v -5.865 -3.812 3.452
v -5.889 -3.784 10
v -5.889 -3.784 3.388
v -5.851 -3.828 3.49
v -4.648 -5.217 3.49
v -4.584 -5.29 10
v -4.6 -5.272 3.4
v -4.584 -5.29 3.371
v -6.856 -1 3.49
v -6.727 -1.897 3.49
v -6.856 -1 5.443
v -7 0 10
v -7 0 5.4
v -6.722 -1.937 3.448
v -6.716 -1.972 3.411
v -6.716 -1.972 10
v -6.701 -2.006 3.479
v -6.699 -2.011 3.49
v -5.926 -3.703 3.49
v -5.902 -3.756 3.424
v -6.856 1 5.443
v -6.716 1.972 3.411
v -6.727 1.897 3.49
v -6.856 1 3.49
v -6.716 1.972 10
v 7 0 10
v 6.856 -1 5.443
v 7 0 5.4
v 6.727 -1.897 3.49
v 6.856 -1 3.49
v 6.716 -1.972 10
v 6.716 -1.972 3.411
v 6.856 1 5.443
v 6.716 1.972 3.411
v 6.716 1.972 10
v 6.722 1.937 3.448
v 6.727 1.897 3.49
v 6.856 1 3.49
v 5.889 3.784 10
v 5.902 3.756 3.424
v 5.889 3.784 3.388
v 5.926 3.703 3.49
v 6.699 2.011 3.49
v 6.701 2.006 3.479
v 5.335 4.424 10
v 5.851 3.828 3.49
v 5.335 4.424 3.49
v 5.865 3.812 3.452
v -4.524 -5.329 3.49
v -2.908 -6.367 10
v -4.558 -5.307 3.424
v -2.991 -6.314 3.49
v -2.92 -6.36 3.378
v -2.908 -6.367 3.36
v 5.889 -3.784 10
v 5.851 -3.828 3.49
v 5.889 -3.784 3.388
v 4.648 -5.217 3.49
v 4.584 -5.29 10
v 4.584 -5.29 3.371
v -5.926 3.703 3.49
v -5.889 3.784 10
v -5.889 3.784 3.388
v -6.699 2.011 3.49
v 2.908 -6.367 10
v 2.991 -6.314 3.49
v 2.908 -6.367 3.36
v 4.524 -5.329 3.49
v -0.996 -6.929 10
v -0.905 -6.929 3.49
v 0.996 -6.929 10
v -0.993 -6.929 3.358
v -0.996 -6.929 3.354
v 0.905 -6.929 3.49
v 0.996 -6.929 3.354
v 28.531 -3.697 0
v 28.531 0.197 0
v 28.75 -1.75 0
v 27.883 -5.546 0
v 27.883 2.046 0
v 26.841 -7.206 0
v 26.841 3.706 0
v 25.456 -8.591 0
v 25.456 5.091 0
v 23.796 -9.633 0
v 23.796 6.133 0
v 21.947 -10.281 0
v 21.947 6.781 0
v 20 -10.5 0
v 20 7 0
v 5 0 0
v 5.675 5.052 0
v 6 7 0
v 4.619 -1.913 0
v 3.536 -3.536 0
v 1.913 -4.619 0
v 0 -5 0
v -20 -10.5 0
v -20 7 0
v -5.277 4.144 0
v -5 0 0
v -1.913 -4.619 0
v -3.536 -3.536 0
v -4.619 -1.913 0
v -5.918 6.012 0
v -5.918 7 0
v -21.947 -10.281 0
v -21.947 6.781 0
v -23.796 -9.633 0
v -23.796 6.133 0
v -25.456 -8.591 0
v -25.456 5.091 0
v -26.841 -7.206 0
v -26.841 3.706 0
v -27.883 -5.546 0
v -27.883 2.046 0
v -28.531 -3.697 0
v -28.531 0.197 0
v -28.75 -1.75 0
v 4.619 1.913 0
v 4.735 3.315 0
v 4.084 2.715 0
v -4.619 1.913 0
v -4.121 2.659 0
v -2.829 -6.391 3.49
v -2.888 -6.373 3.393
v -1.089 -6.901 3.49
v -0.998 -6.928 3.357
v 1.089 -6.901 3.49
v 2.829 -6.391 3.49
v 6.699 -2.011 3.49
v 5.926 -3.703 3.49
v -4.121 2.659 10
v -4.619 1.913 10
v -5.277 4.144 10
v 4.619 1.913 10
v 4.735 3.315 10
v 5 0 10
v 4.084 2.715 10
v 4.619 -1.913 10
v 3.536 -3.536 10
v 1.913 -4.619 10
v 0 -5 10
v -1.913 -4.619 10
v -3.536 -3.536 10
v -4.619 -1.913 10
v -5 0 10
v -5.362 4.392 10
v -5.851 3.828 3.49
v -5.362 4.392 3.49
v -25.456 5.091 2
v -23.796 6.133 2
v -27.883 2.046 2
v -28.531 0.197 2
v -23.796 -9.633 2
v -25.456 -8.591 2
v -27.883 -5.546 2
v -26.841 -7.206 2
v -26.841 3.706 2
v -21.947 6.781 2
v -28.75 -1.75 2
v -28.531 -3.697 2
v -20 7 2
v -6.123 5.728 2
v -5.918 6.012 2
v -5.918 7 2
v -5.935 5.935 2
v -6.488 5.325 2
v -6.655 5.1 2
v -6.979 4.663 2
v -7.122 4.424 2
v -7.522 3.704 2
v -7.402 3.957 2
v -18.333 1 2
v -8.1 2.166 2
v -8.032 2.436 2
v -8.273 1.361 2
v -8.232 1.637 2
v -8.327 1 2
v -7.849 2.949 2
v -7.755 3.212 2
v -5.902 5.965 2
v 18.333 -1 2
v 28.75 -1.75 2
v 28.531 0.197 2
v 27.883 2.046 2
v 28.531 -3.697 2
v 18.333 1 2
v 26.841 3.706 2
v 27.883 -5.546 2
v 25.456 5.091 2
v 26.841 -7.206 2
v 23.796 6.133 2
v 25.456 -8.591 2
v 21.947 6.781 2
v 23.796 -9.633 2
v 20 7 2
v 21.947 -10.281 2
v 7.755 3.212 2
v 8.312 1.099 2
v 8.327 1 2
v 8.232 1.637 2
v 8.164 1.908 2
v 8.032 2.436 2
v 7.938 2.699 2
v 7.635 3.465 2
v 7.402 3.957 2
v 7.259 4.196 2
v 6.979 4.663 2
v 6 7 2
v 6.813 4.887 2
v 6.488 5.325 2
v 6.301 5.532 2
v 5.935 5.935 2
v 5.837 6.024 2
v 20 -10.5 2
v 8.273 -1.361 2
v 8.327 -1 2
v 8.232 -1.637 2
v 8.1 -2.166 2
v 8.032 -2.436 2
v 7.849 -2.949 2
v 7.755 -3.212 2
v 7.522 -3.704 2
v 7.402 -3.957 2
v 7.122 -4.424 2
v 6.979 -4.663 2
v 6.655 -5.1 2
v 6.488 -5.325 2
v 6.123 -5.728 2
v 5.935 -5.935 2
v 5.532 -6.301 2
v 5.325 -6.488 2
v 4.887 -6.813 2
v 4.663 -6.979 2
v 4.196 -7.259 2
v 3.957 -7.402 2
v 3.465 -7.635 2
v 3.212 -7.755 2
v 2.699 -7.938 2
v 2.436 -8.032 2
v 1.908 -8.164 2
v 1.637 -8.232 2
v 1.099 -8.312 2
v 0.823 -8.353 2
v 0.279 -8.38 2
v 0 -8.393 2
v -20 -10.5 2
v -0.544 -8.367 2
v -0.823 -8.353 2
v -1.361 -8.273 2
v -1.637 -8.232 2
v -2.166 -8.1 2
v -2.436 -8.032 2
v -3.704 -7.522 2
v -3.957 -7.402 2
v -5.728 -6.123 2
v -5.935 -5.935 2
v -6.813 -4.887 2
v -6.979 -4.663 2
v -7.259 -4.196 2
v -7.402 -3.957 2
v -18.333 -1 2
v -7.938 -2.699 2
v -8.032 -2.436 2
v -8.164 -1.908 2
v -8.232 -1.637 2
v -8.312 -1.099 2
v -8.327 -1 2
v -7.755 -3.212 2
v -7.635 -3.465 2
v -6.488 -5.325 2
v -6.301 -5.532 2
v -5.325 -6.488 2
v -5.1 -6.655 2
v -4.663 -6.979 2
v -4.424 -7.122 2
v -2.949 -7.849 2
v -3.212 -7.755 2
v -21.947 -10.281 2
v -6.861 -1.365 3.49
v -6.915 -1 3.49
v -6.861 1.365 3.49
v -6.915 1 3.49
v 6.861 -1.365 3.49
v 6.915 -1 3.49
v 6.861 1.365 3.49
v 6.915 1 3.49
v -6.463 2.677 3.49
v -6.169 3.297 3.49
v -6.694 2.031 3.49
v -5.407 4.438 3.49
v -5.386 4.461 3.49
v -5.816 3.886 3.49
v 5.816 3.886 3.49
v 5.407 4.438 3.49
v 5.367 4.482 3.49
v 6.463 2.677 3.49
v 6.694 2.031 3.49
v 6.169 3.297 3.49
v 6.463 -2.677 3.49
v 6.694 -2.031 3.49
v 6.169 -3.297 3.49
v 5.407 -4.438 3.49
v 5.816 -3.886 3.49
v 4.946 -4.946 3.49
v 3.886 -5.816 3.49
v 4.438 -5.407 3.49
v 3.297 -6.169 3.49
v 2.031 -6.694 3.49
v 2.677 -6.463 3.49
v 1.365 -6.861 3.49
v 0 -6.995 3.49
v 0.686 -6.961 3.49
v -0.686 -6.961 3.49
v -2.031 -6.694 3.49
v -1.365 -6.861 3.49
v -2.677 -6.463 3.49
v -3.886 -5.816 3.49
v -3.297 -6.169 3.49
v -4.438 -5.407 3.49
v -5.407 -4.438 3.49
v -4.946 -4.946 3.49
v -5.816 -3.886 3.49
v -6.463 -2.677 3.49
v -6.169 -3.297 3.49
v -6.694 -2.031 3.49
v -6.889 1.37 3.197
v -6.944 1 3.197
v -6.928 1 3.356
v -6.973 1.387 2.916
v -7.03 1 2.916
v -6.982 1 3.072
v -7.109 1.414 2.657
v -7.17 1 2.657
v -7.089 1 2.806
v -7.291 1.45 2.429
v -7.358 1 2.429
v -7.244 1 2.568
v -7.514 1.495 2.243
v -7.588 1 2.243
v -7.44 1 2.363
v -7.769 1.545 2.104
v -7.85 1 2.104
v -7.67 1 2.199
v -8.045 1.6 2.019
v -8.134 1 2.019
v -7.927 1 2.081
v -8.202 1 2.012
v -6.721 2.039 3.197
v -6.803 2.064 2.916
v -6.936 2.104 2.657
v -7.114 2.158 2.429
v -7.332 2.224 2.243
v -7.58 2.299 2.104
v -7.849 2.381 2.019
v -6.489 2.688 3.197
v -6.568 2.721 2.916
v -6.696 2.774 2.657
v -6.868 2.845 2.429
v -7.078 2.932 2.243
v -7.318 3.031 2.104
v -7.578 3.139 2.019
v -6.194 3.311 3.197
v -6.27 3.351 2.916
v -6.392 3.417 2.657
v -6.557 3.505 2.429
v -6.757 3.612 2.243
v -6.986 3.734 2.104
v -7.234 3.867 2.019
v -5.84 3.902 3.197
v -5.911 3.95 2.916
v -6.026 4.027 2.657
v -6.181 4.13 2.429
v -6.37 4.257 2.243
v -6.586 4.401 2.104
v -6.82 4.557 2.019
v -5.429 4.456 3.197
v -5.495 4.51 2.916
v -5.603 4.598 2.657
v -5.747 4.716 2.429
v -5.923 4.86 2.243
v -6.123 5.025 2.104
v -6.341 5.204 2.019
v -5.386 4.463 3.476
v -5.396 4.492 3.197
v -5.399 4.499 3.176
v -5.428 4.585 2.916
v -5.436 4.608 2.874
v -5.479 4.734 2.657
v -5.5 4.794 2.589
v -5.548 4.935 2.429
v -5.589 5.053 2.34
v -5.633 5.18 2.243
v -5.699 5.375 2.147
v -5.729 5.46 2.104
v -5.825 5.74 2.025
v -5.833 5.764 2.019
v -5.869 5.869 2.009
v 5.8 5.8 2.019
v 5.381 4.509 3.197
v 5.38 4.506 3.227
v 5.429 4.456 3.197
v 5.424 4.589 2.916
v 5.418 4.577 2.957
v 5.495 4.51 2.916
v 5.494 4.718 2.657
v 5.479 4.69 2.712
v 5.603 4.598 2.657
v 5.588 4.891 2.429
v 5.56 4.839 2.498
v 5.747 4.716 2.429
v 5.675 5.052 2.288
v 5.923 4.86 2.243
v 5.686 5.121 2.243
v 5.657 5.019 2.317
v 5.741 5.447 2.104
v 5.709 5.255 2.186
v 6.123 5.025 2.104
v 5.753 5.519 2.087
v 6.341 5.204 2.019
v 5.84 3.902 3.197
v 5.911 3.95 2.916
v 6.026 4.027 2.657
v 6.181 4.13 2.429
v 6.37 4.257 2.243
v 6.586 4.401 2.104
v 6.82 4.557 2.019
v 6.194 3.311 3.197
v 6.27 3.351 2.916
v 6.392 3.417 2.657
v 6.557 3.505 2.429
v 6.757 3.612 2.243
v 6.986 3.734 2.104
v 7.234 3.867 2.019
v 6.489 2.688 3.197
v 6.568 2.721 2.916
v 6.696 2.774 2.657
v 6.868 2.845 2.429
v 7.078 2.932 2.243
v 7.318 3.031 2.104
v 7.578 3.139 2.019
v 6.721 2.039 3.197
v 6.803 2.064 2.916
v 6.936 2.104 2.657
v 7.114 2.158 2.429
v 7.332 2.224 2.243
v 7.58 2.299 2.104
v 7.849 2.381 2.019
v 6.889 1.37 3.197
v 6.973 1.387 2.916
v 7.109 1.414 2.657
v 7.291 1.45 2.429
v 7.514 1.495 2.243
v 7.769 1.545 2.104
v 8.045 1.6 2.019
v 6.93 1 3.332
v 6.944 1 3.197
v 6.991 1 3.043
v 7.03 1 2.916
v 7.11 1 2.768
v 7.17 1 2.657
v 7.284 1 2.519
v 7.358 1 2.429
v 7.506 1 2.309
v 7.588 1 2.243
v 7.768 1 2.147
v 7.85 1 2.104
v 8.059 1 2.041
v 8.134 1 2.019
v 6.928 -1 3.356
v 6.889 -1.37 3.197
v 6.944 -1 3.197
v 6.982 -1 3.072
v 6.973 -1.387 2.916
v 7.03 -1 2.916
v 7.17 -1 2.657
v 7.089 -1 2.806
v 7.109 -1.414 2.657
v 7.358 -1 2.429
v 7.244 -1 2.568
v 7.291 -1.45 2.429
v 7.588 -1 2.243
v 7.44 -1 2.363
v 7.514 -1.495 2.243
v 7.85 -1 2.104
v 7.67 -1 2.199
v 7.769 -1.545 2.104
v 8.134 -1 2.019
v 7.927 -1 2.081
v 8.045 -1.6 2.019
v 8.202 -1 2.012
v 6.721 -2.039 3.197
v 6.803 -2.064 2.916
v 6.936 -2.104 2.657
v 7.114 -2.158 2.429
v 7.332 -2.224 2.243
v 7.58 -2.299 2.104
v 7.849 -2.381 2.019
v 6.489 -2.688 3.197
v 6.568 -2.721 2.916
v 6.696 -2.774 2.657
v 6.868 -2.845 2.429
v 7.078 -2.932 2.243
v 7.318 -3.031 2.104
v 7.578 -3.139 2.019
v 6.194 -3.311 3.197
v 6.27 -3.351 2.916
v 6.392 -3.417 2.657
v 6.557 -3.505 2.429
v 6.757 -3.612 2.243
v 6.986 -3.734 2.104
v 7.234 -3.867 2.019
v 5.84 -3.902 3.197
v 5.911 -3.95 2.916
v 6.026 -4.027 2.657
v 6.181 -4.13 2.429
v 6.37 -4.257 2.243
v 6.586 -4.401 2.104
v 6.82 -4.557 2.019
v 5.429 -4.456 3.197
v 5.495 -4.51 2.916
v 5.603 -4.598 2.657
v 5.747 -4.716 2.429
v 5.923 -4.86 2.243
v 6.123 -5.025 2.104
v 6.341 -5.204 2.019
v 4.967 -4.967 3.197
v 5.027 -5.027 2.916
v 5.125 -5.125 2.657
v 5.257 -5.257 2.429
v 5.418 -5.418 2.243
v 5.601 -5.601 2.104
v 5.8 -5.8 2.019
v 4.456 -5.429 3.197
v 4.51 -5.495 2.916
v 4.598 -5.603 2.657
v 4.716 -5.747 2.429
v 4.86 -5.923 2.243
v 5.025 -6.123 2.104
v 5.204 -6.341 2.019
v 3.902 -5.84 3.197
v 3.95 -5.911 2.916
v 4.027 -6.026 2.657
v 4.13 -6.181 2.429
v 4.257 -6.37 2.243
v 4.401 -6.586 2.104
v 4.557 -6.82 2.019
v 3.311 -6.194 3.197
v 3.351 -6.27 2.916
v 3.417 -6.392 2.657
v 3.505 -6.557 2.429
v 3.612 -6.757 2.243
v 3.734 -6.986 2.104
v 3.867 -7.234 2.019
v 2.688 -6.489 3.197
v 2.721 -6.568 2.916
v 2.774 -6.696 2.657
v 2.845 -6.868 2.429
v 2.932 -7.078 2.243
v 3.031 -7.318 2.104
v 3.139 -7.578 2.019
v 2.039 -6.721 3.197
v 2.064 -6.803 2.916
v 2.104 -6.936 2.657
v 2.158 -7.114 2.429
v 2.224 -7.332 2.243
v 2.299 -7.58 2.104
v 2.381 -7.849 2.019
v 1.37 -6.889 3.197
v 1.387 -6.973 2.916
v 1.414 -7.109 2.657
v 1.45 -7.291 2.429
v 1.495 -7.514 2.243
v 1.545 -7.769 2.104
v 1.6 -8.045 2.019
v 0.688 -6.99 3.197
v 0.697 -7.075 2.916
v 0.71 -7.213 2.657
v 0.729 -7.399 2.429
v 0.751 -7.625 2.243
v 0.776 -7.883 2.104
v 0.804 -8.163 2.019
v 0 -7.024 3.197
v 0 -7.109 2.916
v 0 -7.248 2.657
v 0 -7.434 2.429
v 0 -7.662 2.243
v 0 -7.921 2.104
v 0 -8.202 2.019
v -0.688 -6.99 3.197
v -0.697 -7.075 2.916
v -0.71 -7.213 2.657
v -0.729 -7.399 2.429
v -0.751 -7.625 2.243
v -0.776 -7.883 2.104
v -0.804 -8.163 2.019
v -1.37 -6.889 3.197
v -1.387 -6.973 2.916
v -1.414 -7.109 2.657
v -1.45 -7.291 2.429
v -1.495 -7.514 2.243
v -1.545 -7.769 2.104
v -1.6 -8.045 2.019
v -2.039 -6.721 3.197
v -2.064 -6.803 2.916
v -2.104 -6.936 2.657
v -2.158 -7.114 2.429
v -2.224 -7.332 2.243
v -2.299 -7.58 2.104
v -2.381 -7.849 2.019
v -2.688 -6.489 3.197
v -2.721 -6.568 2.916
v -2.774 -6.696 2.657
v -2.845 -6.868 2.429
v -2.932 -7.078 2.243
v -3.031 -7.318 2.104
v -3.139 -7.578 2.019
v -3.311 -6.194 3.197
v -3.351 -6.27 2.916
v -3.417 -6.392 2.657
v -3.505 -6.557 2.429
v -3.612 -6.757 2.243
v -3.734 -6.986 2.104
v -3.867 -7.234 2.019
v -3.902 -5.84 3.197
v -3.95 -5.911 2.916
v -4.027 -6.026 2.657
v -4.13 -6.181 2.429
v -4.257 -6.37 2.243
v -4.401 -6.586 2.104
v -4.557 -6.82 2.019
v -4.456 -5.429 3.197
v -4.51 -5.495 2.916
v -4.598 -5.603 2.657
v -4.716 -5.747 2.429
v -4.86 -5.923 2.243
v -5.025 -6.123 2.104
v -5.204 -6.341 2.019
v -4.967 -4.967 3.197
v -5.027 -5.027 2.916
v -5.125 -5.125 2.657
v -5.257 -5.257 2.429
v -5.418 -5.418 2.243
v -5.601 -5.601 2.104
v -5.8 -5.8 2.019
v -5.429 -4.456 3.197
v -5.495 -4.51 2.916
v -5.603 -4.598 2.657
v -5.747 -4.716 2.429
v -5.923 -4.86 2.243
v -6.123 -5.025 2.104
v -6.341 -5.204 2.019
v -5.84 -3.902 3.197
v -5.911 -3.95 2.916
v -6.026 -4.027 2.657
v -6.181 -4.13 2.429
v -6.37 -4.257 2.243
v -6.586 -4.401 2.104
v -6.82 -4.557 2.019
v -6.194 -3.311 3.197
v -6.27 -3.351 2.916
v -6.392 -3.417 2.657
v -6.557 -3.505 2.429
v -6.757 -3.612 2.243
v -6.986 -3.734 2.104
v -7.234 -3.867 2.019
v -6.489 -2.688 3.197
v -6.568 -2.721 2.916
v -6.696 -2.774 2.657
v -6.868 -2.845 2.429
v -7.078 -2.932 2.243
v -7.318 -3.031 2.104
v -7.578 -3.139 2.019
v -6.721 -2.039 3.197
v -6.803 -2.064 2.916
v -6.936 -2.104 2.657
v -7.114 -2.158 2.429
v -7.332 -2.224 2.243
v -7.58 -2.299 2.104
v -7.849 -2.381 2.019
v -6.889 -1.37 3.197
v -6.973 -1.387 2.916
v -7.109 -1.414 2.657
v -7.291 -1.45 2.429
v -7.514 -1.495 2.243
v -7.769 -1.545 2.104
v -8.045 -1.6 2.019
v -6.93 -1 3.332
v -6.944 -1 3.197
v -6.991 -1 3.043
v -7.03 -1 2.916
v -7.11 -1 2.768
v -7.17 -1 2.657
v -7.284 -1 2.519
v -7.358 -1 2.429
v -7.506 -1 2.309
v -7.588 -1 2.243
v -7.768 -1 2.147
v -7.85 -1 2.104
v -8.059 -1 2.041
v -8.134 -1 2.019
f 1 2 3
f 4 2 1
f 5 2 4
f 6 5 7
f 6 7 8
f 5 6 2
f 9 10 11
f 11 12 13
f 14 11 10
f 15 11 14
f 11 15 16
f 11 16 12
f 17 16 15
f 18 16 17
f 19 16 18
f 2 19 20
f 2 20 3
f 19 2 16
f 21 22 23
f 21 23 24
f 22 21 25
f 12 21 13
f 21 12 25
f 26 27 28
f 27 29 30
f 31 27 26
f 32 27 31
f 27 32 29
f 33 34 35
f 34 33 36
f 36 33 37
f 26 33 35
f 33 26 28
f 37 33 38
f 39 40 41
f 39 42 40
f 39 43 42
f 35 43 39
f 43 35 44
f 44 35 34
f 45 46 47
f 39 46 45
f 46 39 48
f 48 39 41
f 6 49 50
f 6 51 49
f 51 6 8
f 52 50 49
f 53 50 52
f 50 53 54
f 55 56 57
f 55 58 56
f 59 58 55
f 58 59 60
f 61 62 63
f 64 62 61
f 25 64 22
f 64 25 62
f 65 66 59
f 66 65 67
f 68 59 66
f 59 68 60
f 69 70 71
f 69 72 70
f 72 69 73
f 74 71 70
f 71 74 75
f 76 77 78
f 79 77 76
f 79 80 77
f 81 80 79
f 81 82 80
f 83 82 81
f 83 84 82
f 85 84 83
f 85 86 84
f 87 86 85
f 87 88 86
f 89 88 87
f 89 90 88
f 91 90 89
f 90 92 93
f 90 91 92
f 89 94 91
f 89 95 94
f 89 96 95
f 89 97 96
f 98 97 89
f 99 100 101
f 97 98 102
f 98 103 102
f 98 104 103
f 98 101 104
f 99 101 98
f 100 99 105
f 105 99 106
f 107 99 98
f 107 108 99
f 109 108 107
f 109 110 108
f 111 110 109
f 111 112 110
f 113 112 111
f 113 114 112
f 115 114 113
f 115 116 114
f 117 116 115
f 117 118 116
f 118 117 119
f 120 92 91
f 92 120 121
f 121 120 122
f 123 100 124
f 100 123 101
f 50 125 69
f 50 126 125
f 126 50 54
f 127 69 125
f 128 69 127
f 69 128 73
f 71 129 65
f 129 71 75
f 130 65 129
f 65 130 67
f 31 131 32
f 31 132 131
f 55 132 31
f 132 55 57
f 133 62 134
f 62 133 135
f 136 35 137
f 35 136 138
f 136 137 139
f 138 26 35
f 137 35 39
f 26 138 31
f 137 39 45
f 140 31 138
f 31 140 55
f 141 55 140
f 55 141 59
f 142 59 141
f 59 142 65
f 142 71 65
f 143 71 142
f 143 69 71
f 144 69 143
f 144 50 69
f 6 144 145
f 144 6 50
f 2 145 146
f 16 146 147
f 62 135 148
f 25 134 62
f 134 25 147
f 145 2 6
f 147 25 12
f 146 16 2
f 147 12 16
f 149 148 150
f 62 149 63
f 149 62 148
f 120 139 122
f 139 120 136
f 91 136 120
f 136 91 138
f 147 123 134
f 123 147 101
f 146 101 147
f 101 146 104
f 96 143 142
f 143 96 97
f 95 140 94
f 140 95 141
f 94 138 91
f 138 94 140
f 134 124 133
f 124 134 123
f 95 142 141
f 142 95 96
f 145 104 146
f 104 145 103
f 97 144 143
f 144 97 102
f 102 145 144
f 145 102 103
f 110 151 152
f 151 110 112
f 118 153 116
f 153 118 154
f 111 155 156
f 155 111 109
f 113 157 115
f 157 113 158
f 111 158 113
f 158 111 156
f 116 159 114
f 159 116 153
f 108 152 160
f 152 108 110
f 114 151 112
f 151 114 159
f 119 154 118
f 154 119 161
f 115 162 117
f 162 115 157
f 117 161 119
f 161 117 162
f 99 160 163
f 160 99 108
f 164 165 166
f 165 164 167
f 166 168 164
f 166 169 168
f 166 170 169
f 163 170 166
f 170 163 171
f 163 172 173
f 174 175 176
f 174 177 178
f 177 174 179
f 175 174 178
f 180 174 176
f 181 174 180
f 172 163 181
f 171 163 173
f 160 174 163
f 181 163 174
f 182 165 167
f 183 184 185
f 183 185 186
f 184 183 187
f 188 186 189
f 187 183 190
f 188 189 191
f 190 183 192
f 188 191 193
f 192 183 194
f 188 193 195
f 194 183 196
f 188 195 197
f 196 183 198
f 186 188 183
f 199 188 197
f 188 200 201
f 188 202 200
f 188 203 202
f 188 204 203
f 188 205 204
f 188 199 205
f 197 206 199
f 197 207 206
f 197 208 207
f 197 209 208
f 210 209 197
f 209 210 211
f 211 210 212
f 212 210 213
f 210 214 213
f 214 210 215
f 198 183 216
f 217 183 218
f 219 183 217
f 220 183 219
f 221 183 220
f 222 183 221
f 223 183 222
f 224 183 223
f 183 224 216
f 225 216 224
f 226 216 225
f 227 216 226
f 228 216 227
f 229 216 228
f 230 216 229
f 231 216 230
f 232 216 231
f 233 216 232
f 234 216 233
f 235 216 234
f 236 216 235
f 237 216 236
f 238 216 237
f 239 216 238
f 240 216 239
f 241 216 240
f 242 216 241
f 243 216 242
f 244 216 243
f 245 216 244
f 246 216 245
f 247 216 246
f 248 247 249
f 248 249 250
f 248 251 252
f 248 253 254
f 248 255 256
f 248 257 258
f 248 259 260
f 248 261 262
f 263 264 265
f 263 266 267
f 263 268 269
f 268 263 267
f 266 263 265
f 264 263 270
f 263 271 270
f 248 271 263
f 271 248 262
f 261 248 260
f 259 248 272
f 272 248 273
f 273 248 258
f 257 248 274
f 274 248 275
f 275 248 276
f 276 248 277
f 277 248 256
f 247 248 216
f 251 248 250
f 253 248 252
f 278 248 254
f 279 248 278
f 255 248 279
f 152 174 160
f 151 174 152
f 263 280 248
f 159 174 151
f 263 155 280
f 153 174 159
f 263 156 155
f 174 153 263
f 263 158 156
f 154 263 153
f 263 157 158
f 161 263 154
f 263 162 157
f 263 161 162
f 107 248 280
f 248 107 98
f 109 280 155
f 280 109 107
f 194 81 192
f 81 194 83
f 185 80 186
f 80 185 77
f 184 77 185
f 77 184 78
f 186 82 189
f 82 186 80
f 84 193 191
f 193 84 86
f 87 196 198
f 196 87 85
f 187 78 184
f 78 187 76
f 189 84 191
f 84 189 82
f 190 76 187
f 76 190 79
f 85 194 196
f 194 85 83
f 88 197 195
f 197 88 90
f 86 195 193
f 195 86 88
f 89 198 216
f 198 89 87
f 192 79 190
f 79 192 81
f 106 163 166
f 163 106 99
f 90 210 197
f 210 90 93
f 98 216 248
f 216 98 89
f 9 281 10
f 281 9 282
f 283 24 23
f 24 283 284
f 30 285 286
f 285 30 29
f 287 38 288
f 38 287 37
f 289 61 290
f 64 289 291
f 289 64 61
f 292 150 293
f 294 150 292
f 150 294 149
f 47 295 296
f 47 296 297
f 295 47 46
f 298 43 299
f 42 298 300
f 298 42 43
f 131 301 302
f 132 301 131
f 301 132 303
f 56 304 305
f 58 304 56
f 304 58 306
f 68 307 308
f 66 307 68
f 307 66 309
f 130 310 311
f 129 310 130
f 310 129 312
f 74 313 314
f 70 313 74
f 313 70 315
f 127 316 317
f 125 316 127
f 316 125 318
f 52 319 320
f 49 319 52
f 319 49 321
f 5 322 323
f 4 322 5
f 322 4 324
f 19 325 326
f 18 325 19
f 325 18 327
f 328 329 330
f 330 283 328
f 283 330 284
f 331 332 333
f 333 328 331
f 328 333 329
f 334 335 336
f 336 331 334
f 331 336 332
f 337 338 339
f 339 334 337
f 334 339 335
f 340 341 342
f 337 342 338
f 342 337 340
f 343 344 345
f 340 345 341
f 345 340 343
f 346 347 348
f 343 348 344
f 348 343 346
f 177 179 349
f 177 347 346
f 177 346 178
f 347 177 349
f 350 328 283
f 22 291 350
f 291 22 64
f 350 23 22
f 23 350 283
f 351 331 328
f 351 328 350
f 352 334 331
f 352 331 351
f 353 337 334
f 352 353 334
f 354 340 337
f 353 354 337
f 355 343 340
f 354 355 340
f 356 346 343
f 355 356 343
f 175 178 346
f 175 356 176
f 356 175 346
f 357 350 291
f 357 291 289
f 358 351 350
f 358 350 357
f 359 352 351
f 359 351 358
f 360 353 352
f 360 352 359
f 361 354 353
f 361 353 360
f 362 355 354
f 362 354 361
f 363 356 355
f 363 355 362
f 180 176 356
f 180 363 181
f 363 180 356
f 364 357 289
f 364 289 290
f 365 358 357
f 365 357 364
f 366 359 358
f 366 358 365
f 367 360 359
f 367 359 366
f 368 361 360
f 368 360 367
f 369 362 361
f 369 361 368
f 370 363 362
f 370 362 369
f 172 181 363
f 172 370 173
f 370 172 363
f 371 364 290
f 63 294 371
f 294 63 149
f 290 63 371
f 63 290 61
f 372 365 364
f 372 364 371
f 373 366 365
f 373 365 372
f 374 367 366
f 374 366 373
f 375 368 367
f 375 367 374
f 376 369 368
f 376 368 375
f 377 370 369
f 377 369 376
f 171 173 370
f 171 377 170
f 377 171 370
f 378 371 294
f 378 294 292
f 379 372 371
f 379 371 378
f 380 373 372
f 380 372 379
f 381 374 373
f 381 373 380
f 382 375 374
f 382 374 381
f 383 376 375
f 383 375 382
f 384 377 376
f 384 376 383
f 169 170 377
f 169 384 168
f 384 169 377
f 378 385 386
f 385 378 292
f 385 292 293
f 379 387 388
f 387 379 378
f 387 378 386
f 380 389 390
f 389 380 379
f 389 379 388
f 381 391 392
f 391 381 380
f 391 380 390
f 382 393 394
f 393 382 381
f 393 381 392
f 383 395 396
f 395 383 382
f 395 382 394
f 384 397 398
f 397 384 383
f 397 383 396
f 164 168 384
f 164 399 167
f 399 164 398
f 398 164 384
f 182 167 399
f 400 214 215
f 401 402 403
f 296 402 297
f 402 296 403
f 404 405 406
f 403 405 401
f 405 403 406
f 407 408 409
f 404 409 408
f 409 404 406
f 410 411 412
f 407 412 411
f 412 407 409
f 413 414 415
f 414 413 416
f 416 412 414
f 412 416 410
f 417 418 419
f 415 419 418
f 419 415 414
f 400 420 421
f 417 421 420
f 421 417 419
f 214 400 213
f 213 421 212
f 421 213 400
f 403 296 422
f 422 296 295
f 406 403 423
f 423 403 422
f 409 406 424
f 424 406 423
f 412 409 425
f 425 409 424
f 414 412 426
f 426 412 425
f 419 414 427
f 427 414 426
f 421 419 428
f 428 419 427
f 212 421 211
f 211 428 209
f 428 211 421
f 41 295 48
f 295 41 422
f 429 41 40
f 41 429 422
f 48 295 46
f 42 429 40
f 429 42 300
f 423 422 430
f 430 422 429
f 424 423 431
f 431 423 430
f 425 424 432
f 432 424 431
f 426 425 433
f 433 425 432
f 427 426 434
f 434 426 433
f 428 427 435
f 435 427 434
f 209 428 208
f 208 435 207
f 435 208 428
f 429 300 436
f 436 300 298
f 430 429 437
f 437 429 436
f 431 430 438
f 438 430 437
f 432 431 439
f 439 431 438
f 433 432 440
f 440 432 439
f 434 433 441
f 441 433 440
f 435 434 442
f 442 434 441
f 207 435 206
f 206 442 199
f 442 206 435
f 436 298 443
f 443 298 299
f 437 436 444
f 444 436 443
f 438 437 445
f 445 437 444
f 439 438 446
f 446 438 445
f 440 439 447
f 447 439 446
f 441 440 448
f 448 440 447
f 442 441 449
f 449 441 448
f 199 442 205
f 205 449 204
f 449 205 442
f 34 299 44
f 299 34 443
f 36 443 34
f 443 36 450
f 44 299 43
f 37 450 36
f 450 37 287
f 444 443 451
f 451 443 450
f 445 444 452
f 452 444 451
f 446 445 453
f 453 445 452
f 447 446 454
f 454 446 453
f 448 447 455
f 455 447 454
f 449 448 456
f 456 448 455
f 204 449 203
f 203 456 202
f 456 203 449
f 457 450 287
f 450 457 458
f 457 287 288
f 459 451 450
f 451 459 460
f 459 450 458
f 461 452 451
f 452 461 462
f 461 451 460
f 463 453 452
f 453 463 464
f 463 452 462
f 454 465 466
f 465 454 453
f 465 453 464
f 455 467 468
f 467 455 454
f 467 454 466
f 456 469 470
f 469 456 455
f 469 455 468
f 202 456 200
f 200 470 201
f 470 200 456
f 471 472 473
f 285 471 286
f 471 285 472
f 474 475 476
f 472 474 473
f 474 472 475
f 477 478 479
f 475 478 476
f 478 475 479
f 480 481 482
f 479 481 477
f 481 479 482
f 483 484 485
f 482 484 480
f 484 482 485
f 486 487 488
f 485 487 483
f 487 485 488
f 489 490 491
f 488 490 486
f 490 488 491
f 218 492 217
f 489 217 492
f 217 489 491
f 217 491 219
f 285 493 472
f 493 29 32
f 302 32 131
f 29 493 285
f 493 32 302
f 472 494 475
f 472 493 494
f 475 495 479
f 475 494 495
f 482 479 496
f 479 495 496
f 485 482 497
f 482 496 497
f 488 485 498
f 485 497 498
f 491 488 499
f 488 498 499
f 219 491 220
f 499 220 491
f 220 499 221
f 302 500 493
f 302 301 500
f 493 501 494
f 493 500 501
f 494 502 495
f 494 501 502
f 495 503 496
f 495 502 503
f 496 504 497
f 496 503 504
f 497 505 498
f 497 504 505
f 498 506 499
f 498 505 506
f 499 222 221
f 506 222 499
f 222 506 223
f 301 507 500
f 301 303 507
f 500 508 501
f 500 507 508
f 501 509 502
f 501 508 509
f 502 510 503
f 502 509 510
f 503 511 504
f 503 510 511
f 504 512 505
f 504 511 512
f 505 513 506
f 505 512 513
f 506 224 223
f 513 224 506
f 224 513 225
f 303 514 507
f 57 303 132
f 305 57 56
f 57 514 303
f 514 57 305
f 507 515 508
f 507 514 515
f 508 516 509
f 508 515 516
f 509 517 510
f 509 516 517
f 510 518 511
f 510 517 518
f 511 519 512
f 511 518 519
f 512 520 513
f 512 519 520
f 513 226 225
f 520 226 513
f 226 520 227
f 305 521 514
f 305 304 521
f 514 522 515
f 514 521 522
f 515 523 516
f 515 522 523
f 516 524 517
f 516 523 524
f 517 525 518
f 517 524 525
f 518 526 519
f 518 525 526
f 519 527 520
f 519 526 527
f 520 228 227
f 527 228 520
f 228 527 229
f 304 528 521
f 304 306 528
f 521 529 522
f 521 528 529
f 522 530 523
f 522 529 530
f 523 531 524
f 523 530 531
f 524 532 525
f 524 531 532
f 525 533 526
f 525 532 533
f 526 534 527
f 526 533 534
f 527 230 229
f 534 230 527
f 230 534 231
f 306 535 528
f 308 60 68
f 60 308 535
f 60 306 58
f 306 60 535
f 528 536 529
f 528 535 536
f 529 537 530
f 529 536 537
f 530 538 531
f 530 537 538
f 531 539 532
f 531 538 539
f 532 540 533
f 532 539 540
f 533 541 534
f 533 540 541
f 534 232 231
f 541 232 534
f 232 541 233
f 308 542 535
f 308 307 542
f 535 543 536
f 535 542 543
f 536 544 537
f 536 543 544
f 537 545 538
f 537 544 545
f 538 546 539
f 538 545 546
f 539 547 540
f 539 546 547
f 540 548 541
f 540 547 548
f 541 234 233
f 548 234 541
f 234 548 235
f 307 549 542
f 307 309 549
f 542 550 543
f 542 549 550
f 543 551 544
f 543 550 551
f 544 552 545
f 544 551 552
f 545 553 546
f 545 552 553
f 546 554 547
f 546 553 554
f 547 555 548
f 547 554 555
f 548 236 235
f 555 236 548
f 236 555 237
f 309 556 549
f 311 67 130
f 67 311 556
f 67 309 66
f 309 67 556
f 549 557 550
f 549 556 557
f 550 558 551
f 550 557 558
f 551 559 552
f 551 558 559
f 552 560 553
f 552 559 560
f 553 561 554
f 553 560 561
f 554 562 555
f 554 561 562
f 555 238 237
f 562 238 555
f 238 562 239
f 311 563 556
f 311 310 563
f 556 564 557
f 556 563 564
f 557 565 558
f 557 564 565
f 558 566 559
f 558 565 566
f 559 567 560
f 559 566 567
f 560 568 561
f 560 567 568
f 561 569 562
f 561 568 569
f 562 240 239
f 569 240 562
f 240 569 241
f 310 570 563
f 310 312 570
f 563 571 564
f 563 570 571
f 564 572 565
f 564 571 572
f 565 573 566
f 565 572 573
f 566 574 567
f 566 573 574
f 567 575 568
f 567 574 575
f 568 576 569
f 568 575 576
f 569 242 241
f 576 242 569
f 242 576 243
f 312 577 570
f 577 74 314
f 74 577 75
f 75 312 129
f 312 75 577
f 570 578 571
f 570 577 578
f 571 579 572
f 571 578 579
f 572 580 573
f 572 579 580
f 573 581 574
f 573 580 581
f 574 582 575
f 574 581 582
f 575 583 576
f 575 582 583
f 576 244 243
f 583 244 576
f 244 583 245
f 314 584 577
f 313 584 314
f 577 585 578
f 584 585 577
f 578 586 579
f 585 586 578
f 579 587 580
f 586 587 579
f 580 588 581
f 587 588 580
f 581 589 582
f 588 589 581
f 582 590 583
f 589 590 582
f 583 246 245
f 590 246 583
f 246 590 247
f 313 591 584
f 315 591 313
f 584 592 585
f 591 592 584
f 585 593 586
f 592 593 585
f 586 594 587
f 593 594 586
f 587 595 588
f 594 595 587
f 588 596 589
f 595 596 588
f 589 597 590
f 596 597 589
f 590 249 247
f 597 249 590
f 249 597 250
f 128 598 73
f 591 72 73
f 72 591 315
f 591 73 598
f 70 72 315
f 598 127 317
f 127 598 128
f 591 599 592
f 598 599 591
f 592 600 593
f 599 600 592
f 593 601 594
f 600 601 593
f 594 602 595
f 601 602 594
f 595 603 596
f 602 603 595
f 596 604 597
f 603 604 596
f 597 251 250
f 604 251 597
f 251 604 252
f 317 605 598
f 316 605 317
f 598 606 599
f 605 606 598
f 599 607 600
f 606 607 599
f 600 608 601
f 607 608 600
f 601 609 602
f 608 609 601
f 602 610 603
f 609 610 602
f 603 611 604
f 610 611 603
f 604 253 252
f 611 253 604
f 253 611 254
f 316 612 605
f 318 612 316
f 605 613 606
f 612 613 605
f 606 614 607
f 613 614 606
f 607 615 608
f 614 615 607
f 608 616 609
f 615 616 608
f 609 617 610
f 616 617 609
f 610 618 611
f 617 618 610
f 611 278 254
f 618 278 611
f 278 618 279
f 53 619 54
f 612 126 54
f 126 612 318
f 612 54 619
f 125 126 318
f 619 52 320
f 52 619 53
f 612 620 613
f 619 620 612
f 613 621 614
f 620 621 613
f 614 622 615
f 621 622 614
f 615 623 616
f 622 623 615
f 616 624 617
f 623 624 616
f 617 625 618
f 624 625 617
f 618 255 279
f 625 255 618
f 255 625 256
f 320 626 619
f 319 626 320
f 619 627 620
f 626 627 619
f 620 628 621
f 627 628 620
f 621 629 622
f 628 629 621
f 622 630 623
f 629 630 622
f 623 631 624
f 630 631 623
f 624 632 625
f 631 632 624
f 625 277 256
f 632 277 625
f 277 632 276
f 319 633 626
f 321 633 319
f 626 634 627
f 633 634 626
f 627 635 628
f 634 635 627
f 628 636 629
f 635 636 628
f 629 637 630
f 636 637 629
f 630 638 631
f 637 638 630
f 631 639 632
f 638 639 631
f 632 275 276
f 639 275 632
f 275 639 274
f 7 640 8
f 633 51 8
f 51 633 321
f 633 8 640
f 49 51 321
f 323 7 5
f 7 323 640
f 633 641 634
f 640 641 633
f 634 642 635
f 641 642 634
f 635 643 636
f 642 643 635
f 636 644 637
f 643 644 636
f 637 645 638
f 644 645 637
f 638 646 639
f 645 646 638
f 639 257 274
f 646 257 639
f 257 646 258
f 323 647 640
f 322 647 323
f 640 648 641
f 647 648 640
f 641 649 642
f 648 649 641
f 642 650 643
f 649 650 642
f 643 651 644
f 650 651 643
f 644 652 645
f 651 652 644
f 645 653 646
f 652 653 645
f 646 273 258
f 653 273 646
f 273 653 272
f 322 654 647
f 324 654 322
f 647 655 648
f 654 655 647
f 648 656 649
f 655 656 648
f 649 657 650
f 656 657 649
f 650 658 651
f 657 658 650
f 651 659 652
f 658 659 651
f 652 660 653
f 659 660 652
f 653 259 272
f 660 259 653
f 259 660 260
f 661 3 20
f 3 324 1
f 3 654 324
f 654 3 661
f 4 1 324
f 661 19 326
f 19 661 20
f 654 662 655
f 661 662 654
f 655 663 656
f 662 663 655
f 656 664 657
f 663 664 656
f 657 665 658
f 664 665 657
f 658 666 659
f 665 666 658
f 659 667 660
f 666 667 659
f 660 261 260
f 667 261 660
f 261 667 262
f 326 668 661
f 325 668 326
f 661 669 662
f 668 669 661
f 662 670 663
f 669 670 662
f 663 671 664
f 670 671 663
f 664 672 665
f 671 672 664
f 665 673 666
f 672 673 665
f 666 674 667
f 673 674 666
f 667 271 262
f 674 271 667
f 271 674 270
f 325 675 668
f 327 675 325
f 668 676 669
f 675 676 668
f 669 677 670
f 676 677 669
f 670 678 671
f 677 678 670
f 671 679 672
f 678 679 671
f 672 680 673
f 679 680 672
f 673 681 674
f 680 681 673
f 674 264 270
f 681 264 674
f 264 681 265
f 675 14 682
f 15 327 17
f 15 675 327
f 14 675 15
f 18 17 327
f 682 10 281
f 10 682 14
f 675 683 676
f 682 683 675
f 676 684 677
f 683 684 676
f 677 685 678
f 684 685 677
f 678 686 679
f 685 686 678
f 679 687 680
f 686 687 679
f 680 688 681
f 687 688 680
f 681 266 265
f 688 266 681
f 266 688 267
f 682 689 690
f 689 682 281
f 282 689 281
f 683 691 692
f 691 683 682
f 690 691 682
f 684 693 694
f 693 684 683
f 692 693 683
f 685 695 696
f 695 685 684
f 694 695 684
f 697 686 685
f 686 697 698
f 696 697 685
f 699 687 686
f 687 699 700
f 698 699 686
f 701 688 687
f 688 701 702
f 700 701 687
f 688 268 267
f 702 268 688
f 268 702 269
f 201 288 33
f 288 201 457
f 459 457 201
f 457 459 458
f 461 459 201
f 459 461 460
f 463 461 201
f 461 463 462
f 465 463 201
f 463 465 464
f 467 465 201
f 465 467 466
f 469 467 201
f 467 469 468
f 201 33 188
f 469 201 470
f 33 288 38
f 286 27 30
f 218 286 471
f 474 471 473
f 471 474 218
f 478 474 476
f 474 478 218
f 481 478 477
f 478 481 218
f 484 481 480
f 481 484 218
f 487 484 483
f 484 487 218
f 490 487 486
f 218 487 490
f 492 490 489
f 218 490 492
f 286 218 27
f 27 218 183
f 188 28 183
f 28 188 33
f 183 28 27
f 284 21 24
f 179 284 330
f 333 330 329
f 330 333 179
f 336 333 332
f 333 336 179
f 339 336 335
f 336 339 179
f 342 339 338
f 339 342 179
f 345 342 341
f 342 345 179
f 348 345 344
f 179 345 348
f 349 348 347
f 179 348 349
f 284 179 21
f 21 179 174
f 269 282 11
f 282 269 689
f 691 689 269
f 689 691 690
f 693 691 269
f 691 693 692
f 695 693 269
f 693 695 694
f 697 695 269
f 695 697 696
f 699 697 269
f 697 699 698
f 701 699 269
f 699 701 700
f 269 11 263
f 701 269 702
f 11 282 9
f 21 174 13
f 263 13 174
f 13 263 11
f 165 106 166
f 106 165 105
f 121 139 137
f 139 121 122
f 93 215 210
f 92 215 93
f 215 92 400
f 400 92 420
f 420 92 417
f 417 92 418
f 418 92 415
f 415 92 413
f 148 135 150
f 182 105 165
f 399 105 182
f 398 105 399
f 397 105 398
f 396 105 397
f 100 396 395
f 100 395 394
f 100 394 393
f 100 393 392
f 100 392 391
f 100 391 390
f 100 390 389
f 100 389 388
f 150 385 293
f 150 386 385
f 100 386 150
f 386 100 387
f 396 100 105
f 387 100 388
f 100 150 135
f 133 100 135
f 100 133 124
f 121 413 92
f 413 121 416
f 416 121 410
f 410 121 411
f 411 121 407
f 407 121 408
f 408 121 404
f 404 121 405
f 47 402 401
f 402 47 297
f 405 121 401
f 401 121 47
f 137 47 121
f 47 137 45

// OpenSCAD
// file: ../ShapeLibrary/Torus.scad
// Torus.scad

module torus(ir, rr) {
	// Torus centred on origin.
	//
	// ir 		inside (hole) radius
	// rr 		rim radius
	//
	rotate_extrude($fn=64) {
		translate([ir+rr,0,0])
			circle(r=rr, $fn=32) ;
	}
}

//torus(20, 10);
// file: ../ShapeLibrary/CircularFillet.scad
// CircularFillet.scad
//

use <Tube.scad>
use <Torus.scad>

module circular_outside_fillet(d, fr) {
    // Circular radiused fillet, for example around where a cylinder meets a plate
    // The fillet lies on the X-Y plane, centred on the origin, and faces upwards
    //
    // d  = diameter of the circular edge to be filleted
    // fr = fillet radius to use
    //
    difference() {
        tube(id=d, od=d+fr*2, l=fr) ;
        translate([0,0,fr])
            torus(ir=d/2, rr=fr) ;
    }
}


// Example
circular_outside_fillet(d=20,fr=2) ;
// file: ../ShapeLibrary/Tube.scad
// Tube.scad

delta = 0.01 ;

module tube(id, od, l) {
    // Tube aligned along Z axis, standing on X-Y plane, centred on origin
    //
    // id = inside diamater
    // od = outside diameter
    // l  = length (height)
    difference() {
        cylinder(d=od, h=l) ;
        translate([0,0,-delta])
            cylinder(d=id, h=l+2*delta) ;
    }
}
// file: ../ShapeLibrary/Oval.scad
// oval.scad

// Oval plate on X-Y plane, one radiused end centred on the origin,
// and the other centred at [l,0,0]

module oval(l, w, t) {
    // l is distance between radius end centres
    // w is width of oval (twice end radius)
    // t is thickness of plate
    cylinder(d=w, h=t) ;
    translate([l,0,0])
        cylinder(d=w, h=t) ;
    translate([0,-w/2,0])
        cube(size=[l,w,t]) ;
}

// Example
oval(30,10,2) ;
// main file
// PipeFittingReleaseTool.scad

// Tool to facilitate separation of push-fit pipe fittings
// (Such as used in CAMRA beer cooling system)

use <../ShapeLibrary/Oval.scad> ;
use <../ShapeLibrary/Tube.scad> ;
use <../ShapeLibrary/CircularFillet.scad> ;

delta = 0.01 ;

module triangle_plate(x1,y1,x2,y2,x3,y3,h) {
    // Trangular plate on X-Y plane
    //
    // x1 = X position of first apex
    // y1 = Y position of first apex
    // x2 = X position of second apex
    // y2 = Y position of second apex
    // x3 = X position of third apex
    // y3 = Y position of third apex
    // h  = height (thickness) of plate
    linear_extrude(height=h, center=false) {
        polygon(
            points=[
                [x1,y1],
                [x2,y2],
                [x3,y3],
                [x1,y1],
                ]
            ) ;
    }
}


module web(l, h, t) {
    // Triangular web in the X-Z plane, centred around Y-axis and with corner at the origin
    //
    // l = length of web (X-axis)
    // h = height of web (Z-axis)
    // t = thickness of web (Y-axis)
    rotate([90,0,0])
        translate([0,0,-t/2])
            triangle_plate(0,0, l,0, 0,h, t) ;
}

module pipe_fitting_release_tool(td, tl, tt, fl, fw, ft) {
    // td = diameter of pipe tools fits
    // tl = length of tool cylinder
    // tt = thickness of tool cylinder
    // fl = length of flange used to push on tool (between centres of rounded ends)
    // fw = width of flange
    // ft = thickness of flange
    //
    difference() {
        union() {
            // Flange
            translate([-fl/2,-fw*0.1,0])
                oval(fl, fw, ft) ;
            // Tube section to press on fitting release
            tube(td, td+2*tt, tl) ;
            // Fillet where tube meets flange 
            translate([0,0,ft-delta])
                circular_outside_fillet(d=td+2*tt-delta, fr=1.5) ;
            // Webs to reinforce plate
            translate([td*0.5,0,0])
                web(fl*0.5, tl*0.6, ft) ;
            mirror([1,0,0])
                translate([td*0.5,0,0])
                    web(fl*0.5, tl*0.6, ft) ;
        }
    // Cutaway in flange to fit over tube
    translate([0,0,-delta])
        cylinder(d=td, h=tl+2*delta) ;
    // Cutaway to clip over tube
    translate([0,td*0.7,-delta])
        cylinder(d=td*1.2, h=tl+2*delta) ;
    }
}

// Parameters for 3/8" (9.5mm) pipe diameter





pipe_fitting_release_tool(td=10, tl=10, tt=2, fl=40, fw=17.5, ft=2) ;
